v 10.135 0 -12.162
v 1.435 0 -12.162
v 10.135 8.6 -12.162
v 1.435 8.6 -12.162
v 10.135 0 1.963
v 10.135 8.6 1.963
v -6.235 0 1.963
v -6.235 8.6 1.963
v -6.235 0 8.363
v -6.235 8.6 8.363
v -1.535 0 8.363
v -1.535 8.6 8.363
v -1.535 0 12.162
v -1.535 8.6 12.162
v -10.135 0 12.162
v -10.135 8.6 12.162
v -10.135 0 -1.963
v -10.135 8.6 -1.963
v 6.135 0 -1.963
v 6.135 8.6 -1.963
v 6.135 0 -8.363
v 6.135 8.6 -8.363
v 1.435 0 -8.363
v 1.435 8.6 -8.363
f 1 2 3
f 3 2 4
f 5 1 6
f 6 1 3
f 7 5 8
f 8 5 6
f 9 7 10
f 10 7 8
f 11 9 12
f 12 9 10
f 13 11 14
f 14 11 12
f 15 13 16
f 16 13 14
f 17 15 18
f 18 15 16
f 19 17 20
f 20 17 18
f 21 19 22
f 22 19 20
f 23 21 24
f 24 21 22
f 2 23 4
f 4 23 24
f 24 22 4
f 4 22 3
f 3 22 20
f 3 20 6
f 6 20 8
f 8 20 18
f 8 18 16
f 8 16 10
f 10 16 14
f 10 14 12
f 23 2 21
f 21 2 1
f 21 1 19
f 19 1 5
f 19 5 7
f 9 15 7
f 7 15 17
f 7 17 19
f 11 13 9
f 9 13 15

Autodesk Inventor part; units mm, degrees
ref_plane "YZ Plane" through (0, 0, 0) normal (1, 0, 0) x (0, 1, 0)
ref_plane "XZ Plane" through (0, 0, 0) normal (0, 1, 0) x (-1, 0, 0)
ref_plane "XY Plane" through (0, 0, 0) normal (0, 0, 1) x (1, 0, 0)
sketch "Skizze1" plane through (0, 0, 0) normal (0, 1, 0) x (-1, 0, 0)
  line L0 (-10.1354, -12.1625) -> (-1.4354, -12.1625)
  line L1 (10.1354, -1.9625) -> (10.1354, 12.1625)
  line L2 (10.1354, 12.1625) -> (1.5354, 12.1625)
  line L3 (-10.1354, 1.9625) -> (-10.1354, -12.1625)
  line L4 (-10.1354, -12.1625) -> (10.1354, 12.1625) construction
  line L5 (10, -12) -> (-10, 12) construction
  line L6 (1.5354, 12.1625) -> (1.5354, 8.3625)
  line L7 (1.5354, 8.3625) -> (6.2354, 8.3625)
  line L8 (6.2354, 8.3625) -> (6.2354, 1.9625)
  line L9 (6.2354, 1.9625) -> (-10.1354, 1.9625)
  line L10 (-1.4354, -12.1625) -> (-1.4354, -8.3625)
  line L11 (-1.4354, -8.3625) -> (-6.1354, -8.3625)
  line L12 (-6.1354, -8.3625) -> (-6.1354, -1.9625)
  line L13 (-6.1354, -1.9625) -> (10.1354, -1.9625)
  point P0 (0, 0)
  point P1 (1.5354, 10.2625)
  point P2 (6.2354, 5.1625)
  point P3 (-1.4354, -10.2625)
  dimension "d12" = 6.4
  dimension "d13" = 3.8
  dimension "d14" = 6.4
  dimension "d15" = 3.925
  dimension "d16" = 3.9
  dimension "d17" = 3.8
  dimension "d18" = 4.7
  dimension "d19" = 4.7
extrude "Extrusion1" add sketch "Skizze1" along normal blind 8.6
properties part number "Haken für Bioprinter 4x9mm 001"
